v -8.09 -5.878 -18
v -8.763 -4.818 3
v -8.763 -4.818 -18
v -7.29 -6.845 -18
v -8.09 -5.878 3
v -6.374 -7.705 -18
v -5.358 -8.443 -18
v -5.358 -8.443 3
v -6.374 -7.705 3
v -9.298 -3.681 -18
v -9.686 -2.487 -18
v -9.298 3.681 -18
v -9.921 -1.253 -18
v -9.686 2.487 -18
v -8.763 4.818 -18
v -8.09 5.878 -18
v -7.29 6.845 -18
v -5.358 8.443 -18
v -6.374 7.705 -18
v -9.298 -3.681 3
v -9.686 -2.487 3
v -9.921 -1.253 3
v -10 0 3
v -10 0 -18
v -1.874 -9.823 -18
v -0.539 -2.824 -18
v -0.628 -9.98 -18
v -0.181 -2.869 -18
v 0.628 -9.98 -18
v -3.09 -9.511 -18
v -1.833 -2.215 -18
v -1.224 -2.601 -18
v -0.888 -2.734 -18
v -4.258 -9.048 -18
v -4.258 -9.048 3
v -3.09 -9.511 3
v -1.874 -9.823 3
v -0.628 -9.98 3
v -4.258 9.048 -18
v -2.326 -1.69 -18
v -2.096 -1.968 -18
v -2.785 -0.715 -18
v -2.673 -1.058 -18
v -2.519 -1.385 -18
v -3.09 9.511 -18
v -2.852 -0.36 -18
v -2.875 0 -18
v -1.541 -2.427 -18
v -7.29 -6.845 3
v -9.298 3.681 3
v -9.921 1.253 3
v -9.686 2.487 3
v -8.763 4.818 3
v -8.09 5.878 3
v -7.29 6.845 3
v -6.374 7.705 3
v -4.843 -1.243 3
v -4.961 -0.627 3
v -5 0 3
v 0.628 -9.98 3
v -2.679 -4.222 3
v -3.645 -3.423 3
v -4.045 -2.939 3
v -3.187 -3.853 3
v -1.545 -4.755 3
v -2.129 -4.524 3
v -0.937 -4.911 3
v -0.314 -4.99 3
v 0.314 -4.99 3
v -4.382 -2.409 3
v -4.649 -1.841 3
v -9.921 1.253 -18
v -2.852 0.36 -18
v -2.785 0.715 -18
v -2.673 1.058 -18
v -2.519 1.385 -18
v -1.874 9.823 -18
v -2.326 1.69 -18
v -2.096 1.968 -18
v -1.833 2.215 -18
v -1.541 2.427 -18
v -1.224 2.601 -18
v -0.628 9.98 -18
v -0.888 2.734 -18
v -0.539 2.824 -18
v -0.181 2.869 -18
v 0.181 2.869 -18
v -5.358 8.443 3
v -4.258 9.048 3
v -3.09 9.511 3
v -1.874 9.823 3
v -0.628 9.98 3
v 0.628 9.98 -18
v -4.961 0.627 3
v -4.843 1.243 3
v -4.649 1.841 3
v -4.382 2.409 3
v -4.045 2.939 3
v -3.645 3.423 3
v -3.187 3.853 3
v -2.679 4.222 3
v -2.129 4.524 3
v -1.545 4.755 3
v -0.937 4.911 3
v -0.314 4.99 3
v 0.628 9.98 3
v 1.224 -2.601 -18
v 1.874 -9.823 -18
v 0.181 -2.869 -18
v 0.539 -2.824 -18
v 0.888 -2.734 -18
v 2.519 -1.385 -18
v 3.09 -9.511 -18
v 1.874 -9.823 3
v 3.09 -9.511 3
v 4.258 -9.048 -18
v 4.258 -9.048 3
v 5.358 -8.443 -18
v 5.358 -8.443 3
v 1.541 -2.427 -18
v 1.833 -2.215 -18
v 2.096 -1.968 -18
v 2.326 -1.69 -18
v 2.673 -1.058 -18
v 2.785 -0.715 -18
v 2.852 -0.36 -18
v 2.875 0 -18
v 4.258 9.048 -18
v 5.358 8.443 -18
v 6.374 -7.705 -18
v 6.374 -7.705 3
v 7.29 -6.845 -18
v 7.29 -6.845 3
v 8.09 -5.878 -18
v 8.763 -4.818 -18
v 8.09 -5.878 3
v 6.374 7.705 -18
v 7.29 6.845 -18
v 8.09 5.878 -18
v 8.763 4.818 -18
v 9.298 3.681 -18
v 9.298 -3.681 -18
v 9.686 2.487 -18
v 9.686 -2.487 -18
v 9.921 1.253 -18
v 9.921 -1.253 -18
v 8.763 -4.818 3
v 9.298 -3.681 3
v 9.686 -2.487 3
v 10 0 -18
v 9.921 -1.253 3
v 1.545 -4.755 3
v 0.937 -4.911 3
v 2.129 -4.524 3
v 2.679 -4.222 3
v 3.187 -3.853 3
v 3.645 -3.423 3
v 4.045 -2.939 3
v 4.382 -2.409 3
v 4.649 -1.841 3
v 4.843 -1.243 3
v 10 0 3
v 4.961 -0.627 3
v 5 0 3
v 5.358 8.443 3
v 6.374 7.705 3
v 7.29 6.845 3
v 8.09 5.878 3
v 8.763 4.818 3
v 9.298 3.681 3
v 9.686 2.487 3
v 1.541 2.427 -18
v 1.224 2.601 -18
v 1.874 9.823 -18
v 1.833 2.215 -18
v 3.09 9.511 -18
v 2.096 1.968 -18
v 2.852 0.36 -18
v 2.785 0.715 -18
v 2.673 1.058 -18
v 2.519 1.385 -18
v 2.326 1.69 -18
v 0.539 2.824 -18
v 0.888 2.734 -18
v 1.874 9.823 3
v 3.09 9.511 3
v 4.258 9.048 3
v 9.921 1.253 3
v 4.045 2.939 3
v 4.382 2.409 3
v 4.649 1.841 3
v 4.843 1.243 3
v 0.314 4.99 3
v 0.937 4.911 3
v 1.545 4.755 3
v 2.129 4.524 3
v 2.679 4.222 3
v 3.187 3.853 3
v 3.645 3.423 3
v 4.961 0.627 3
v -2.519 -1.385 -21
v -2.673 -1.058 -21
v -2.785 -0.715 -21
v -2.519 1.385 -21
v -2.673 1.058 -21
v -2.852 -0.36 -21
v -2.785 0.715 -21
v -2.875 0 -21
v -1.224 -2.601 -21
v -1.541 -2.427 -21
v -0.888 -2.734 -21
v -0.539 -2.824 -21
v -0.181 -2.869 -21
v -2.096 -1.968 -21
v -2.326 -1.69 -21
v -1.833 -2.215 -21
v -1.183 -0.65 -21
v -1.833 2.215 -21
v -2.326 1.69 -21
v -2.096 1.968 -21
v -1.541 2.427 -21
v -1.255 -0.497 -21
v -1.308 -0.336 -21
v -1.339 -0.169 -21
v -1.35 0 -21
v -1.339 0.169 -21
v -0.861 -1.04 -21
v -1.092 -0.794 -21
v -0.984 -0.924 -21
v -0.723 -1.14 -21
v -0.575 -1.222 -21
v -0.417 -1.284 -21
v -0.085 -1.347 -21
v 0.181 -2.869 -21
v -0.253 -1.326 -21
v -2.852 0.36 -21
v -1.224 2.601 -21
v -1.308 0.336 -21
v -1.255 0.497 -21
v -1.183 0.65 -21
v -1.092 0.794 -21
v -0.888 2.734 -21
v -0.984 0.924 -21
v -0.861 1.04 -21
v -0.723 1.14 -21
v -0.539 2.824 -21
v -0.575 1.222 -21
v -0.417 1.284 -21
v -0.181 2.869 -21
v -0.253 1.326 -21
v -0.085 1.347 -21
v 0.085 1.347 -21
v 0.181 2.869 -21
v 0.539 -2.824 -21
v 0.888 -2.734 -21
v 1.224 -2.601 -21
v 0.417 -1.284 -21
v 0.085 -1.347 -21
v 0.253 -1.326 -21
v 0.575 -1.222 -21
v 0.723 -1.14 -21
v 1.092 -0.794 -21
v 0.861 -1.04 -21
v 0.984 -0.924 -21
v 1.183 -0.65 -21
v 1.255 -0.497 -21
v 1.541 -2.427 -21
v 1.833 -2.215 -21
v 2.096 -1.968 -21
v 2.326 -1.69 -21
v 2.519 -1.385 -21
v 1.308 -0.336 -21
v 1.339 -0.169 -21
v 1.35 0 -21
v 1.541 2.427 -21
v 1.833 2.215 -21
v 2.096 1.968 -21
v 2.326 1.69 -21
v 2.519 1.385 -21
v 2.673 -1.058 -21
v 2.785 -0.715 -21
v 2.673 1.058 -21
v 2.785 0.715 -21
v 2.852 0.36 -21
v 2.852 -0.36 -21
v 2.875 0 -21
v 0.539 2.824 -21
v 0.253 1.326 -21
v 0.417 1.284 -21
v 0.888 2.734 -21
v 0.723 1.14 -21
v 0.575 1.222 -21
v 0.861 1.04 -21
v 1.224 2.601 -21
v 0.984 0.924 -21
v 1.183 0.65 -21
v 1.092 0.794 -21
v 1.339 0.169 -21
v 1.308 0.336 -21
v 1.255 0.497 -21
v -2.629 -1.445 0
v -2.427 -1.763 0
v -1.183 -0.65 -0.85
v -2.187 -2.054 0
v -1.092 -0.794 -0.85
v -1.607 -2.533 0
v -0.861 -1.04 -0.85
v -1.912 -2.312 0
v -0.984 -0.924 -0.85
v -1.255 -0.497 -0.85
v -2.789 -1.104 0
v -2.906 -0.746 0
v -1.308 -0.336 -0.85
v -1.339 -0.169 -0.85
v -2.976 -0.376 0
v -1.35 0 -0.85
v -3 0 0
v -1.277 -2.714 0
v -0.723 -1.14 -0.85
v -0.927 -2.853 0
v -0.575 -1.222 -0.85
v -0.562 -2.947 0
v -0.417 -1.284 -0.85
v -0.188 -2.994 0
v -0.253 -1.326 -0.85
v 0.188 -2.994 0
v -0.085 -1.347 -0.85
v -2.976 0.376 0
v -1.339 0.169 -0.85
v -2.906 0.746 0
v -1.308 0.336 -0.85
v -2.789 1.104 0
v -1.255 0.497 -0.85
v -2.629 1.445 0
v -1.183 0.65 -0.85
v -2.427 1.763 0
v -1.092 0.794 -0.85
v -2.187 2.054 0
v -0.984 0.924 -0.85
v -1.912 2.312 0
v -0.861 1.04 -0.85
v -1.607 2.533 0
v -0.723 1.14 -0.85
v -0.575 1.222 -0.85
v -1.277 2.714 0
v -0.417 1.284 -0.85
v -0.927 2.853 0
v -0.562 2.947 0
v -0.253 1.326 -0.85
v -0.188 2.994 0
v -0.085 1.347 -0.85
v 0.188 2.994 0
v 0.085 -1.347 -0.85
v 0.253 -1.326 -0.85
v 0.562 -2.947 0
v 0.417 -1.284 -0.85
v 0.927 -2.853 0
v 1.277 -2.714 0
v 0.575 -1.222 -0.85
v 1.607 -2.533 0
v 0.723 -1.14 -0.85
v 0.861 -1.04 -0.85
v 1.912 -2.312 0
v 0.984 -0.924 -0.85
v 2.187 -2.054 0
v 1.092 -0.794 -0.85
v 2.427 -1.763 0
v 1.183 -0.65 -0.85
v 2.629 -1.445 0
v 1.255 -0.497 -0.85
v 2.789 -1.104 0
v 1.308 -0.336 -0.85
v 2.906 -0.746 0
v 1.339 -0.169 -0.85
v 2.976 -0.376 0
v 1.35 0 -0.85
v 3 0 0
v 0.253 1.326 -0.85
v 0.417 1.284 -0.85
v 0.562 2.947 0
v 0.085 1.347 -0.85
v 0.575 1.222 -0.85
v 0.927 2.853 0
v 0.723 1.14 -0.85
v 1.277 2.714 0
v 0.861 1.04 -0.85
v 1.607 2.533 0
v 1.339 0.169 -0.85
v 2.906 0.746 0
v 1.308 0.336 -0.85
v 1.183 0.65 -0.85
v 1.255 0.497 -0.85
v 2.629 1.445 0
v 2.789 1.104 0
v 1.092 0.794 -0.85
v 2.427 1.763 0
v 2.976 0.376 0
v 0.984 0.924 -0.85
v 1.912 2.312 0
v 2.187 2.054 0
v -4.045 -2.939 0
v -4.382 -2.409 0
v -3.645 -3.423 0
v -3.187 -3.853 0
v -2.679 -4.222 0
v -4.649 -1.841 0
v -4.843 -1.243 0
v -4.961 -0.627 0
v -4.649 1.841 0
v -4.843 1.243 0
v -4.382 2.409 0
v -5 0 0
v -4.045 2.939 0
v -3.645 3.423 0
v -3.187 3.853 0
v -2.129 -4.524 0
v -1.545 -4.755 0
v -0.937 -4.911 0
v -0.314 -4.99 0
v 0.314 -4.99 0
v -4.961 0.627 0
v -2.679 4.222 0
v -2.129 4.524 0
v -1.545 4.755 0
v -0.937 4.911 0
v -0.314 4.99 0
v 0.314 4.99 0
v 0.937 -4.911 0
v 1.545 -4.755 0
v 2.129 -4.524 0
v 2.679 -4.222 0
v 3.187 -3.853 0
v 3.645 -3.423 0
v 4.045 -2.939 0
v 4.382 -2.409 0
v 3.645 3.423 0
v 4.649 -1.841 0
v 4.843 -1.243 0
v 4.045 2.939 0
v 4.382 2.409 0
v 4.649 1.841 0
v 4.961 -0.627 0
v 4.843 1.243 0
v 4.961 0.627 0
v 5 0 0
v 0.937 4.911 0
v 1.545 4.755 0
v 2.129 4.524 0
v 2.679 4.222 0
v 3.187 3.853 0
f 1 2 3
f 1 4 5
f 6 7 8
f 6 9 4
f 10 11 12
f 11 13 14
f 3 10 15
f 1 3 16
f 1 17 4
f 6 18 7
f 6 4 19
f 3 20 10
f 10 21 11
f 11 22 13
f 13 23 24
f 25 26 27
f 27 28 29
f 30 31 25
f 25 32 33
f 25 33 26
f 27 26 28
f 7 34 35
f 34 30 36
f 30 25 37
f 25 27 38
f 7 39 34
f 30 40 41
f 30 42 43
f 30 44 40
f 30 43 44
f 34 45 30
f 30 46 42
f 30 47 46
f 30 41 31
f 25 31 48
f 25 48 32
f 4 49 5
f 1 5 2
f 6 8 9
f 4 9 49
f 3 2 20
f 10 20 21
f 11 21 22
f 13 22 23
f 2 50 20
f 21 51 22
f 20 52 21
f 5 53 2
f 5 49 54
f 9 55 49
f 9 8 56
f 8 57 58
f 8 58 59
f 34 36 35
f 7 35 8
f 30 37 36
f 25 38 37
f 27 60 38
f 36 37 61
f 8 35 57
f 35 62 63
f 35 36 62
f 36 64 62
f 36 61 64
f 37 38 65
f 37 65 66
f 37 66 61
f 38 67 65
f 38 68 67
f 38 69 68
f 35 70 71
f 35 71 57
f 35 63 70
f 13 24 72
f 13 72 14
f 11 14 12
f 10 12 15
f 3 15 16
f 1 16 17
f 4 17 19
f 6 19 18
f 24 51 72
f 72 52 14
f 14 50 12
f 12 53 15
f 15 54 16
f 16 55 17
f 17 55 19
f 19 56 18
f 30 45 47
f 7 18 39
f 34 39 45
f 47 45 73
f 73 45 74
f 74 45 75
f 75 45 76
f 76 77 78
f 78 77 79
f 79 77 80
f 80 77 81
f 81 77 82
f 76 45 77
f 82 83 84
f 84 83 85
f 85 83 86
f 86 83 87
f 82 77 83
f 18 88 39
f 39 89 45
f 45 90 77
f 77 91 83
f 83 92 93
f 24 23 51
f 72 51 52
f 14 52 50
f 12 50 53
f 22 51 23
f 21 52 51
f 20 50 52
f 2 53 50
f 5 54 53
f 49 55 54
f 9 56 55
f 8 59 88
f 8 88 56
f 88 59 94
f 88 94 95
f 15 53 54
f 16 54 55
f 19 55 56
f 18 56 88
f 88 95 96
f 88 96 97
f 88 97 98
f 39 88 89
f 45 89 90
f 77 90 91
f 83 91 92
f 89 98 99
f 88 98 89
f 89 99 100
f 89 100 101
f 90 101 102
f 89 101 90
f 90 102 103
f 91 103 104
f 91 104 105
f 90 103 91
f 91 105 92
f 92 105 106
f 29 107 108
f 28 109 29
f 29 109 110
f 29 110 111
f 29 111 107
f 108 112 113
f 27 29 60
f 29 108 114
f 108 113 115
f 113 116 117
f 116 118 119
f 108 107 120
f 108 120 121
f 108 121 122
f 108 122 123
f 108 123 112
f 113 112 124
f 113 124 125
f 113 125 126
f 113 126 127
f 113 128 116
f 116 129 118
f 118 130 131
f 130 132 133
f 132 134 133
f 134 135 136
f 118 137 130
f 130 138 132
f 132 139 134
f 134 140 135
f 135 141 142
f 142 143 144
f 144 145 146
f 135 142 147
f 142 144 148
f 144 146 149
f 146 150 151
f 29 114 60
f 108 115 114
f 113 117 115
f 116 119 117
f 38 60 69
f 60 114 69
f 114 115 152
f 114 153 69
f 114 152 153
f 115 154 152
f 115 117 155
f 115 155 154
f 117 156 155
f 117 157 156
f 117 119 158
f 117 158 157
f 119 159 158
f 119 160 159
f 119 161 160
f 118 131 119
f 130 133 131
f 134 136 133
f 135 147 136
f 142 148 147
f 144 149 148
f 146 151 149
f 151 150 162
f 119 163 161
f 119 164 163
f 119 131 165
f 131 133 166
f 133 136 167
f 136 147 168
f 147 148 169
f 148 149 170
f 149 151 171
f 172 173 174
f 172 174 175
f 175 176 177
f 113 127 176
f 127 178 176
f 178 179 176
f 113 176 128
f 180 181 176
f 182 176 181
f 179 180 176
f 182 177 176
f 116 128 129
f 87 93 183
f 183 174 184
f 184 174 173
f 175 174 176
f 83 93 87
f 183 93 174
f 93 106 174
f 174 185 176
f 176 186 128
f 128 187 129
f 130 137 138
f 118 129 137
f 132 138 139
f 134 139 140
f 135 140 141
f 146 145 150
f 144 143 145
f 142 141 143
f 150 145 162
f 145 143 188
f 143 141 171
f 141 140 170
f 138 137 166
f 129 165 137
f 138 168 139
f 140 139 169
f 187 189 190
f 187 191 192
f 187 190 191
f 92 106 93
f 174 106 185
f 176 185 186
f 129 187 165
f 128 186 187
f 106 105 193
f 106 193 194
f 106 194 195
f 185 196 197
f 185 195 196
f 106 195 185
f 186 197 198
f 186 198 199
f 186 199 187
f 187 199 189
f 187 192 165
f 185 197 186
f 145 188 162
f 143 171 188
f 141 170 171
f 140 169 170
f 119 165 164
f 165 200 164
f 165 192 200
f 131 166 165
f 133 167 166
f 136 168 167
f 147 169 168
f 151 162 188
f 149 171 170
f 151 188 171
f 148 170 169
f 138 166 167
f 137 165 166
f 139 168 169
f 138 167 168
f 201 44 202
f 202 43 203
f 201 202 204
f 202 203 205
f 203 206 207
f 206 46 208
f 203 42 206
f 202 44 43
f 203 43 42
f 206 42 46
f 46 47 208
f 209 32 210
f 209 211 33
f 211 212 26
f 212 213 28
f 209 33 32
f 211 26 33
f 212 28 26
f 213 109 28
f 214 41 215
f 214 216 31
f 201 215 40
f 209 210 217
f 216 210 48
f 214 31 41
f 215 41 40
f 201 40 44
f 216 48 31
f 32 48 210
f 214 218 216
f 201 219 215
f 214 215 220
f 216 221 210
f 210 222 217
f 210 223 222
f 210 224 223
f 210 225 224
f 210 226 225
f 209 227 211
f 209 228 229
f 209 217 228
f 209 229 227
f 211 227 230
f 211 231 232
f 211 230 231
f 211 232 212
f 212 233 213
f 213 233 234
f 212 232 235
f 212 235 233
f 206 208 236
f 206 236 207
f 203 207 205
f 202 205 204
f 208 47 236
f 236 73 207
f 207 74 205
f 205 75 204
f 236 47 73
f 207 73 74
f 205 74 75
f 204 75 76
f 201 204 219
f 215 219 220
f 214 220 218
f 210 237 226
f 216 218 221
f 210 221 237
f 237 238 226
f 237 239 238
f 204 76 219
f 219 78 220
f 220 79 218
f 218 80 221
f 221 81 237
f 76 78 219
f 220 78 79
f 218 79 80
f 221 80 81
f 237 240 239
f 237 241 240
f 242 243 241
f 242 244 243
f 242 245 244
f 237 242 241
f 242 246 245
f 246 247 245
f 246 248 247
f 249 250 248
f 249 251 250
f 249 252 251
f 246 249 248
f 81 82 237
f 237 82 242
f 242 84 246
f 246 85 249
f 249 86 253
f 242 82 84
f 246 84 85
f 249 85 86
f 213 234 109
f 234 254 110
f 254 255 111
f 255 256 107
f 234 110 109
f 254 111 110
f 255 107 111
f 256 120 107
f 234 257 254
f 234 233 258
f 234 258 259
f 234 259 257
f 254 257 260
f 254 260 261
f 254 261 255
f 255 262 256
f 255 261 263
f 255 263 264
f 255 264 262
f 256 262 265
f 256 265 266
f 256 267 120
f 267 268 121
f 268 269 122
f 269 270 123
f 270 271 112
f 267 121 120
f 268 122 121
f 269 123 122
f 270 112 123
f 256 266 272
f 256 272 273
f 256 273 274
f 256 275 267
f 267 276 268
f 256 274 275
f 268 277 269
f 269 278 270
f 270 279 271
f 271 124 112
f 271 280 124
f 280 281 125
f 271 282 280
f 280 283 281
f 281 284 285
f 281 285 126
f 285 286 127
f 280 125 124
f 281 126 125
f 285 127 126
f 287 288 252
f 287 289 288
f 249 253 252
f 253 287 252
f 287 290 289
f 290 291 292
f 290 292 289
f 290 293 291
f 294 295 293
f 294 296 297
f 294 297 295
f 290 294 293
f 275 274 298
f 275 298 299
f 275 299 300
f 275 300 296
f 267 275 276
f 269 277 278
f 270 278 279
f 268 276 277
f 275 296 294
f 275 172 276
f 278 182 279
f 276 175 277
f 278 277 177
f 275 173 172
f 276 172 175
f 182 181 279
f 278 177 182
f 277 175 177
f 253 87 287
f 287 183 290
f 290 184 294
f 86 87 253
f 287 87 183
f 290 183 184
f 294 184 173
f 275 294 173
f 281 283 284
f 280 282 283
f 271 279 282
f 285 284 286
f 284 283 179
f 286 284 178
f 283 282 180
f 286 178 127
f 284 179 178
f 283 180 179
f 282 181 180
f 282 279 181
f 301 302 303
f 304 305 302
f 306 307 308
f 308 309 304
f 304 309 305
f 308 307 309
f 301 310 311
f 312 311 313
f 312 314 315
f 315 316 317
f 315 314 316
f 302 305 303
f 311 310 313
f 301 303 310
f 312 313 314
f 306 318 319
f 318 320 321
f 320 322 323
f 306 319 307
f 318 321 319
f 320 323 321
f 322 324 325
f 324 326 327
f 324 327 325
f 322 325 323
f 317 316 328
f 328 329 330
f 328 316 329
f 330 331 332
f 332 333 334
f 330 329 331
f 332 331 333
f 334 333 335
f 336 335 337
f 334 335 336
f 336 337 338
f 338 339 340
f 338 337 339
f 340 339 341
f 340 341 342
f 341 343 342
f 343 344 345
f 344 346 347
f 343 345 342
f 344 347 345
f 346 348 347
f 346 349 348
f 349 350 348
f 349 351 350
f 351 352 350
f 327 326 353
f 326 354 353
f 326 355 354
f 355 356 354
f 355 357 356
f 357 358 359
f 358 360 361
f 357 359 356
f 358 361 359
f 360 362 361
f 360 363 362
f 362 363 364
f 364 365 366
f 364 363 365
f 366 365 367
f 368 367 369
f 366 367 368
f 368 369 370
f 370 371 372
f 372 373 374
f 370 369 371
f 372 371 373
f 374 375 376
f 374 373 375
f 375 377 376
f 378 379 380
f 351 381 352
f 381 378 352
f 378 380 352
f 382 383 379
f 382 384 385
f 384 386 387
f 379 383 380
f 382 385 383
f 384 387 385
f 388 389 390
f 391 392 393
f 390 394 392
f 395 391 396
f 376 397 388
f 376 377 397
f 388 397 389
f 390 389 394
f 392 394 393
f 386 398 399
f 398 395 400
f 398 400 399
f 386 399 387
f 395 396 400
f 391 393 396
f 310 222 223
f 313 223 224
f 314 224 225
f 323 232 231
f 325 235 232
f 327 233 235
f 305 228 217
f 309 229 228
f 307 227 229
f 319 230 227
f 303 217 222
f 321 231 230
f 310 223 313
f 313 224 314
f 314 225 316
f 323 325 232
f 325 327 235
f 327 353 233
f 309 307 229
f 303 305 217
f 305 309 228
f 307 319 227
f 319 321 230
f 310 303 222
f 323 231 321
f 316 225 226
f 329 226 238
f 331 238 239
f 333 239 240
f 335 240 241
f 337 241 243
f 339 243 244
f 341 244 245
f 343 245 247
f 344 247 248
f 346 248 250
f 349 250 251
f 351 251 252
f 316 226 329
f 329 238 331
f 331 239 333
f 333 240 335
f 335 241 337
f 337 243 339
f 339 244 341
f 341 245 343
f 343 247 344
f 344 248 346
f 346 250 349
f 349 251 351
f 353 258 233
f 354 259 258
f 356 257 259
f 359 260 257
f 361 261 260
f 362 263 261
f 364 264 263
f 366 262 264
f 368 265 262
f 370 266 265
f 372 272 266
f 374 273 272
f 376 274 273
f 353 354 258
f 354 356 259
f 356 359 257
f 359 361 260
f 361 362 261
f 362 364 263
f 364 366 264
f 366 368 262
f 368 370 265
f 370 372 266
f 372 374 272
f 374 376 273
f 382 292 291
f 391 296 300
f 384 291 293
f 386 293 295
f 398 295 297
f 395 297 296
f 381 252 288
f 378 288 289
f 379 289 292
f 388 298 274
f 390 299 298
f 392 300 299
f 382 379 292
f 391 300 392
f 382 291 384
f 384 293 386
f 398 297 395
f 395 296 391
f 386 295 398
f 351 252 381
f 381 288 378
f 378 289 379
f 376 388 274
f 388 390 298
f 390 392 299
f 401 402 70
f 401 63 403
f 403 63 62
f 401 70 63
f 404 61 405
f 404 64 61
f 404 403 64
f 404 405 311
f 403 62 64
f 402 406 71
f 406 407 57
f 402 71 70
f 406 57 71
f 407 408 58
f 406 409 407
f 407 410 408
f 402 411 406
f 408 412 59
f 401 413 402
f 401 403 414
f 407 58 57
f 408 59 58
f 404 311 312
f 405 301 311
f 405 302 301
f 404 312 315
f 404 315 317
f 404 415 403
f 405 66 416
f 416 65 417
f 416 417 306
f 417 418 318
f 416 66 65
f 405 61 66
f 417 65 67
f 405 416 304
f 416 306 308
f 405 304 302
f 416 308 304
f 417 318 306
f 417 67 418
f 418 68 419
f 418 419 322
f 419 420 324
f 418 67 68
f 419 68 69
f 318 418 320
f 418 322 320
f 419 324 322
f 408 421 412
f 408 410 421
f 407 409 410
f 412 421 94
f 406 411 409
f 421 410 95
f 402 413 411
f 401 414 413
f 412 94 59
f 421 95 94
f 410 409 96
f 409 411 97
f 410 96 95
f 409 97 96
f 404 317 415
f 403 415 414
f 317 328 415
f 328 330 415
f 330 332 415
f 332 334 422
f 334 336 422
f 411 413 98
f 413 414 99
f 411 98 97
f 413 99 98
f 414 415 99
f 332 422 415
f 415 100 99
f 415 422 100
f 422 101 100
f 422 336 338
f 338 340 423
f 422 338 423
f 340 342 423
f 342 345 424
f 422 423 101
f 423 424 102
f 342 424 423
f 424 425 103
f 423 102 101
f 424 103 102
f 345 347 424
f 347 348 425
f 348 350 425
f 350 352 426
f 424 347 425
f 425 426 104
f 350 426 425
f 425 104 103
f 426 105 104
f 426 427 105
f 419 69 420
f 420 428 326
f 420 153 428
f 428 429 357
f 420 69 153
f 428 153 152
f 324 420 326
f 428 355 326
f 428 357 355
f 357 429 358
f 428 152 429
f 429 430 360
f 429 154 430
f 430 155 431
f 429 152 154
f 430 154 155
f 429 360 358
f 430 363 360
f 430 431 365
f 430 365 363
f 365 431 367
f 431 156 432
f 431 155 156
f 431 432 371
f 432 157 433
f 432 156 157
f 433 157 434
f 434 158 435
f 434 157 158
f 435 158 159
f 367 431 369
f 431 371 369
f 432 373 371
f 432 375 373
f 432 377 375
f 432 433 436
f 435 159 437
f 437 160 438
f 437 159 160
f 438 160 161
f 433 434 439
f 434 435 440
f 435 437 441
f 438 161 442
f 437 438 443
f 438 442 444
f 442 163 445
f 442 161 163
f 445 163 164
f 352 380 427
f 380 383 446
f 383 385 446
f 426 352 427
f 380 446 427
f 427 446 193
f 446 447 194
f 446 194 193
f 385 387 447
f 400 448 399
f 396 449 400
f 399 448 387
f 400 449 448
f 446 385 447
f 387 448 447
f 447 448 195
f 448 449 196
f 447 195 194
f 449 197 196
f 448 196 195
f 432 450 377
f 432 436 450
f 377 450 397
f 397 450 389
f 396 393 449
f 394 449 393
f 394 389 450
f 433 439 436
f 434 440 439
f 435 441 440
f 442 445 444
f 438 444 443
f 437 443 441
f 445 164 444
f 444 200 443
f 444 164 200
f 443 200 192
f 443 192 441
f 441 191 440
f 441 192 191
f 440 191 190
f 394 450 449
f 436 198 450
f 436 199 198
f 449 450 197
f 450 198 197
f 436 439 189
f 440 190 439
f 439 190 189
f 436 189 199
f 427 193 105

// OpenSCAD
$fn = 50;

difference() {
	union() {
		translate(v = [0, 0, -18.0]) {
			cylinder(h = 21, r = 10.0);
		}
		#translate(v = [0, 0, -21.0]) {
			cylinder(h = 21, r = 2.875);
		}
	}
	union() {
		translate(v = [0, 0, 0]) {
			rotate(a = [0, 0, 0]) {
				difference() {
					union() {
						translate(v = [0, 0, -21.0]) {
							cylinder(h = 21, r = 1.0);
						}
						translate(v = [0, 0, -0.85]) {
							cylinder(h = 0.85, r1 = 1.35, r2 = 3.0);
						}
						translate(v = [0, 0, -21.0]) {
							cylinder(h = 21, r = 1.35);
						}
						translate(v = [0, 0, -21.0]) {
							cylinder(h = 21, r = 1.0);
						}
					}
					union();
				}
			}
		}
		#cylinder(h = 3, r = 5.0);
	}
}
